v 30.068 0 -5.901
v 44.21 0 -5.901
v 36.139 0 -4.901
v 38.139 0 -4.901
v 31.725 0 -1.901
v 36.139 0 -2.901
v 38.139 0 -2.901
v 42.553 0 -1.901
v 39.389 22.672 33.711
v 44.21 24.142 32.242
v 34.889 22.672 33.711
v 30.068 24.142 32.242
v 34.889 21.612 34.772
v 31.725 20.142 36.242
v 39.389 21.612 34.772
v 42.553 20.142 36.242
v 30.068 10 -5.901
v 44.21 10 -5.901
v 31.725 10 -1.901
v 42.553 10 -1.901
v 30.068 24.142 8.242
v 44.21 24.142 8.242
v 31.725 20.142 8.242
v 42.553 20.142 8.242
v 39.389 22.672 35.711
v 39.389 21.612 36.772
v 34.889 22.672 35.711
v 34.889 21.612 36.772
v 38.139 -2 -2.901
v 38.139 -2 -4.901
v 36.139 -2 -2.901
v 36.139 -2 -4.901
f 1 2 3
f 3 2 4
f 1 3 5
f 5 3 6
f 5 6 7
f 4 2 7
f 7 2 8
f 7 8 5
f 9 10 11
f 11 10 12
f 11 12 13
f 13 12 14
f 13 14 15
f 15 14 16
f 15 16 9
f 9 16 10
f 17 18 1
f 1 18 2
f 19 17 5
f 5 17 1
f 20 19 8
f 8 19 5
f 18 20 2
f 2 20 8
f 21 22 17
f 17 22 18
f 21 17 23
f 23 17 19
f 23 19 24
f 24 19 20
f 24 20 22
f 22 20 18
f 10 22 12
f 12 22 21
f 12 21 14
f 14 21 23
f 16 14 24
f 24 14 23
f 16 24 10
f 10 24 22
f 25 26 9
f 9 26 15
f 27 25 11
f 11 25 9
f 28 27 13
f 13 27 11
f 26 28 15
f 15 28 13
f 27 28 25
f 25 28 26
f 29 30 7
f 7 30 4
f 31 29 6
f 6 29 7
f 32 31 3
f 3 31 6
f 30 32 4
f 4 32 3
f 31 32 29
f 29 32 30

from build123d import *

# Parameters (mm, degrees)
BOSS_EXTRUDE1_DEPTH     = 10
BOSS_EXTRUDE5_DEPTH     = 20
CUT_EXTRUDE1_DEPTH      = 43.284970512
CUT_EXTRUDE1_DEPTH_BACK = 43.284970512
BOSS_EXTRUDE7_DEPTH     = 28
CUT_EXTRUDE3_DEPTH      = 52.790286451
CUT_EXTRUDE3_DEPTH_BACK = 52.790286451
SKETCH31_W              = 4.5
SKETCH31_H              = 1.5
BOSS_EXTRUDE8_DEPTH     = 2
SKETCH32_W              = 2
SKETCH32_H              = 2
BOSS_EXTRUDE9_DEPTH     = 2


with BuildPart() as part:
    # Sketch2 → Boss-Extrude1 (new body)
    with BuildSketch(Plane(origin=(0, 0, 0), x_dir=(1, 0, 0), z_dir=(0, 1, 0))):
        Polygon((30.067911316, 5.900626551), (31.724765565, 1.900626551), (42.55319269, 1.900626551), (44.21004694, 5.900626551), align=None)
    extrude(amount=BOSS_EXTRUDE1_DEPTH)

    # Sketch9 → Boss-Extrude5 (add, along a direction that is not the sketch's normal)
    with BuildSketch(Plane(origin=(0, 10, 0), x_dir=(1, 0, 0), z_dir=(0, 1, 0))):
        Polygon((30.067911316, 5.900626551), (31.724765565, 1.900626551), (42.55319269, 1.900626551), (44.21004694, 5.900626551), align=None)
    extrude(amount=BOSS_EXTRUDE5_DEPTH, dir=(1.7578001538897393e-15, 0.7071067811865437, 0.7071067811865515))

    # Sketch14 → Cut-Extrude1 (cut, two sides: drawn at the far end of the back side and taken through both)
    with BuildSketch(Plane(origin=(37.138979128, -13.011121517, 13.011121517), x_dir=(-2.5975542964999143e-15, -0.11094714299783787, -0.9938263084969211), z_dir=(1, 0, 0)).offset(-CUT_EXTRUDE1_DEPTH_BACK)):
        Polygon((0.618118596, 37.453059267), (-3.357186638, 37.009270695), (1.061907168, 33.477754033), align=None)
    extrude(amount=CUT_EXTRUDE1_DEPTH + CUT_EXTRUDE1_DEPTH_BACK, mode=Mode.SUBTRACT)

    # Sketch15 → Boss-Extrude7 (add)
    with BuildSketch(Plane.XY.offset(8.241509073)):
        Polygon((30.067911316, 24.142135624), (31.724765565, 20.142135624), (42.55319269, 20.142135624), (44.21004694, 24.142135624), align=None)
    extrude(amount=BOSS_EXTRUDE7_DEPTH)

    # Sketch30 → Cut-Extrude3 (cut, two sides: drawn at the far end of the back side and taken through both)
    with BuildSketch(Plane(origin=(37.138979128, -12.611751667, 0.445063165), x_dir=(-2.6136735802757005e-15, -0.0035891178684094257, -0.9999935590957207), z_dir=(1, 0, 0)).offset(-CUT_EXTRUDE3_DEPTH_BACK)):
        Polygon((-35.928129381, 36.625172899), (-35.913772909, 32.625198662), (-31.928155144, 36.63952937), align=None)
    extrude(amount=CUT_EXTRUDE3_DEPTH + CUT_EXTRUDE3_DEPTH_BACK, mode=Mode.SUBTRACT)

    # Sketch31 → Boss-Extrude8 (add, along a direction that is not the sketch's normal)
    with BuildSketch(Plane(origin=(0, 28.191822348, 28.191822348), x_dir=(1, 0, 0), z_dir=(0, 0.7071067811865434, 0.7071067811865517))):
        with Locations((37.138979128, -8.555549014)):
            Rectangle(SKETCH31_W, SKETCH31_H)
    extrude(amount=BOSS_EXTRUDE8_DEPTH, dir=(0, 0, 1))

    # Sketch32 → Boss-Extrude9 (add)
    with BuildSketch(Plane.XZ):
        with Locations((37.138979128, -3.900626551)):
            Rectangle(SKETCH32_W, SKETCH32_H)
    extrude(amount=BOSS_EXTRUDE9_DEPTH)


solid = part.part
